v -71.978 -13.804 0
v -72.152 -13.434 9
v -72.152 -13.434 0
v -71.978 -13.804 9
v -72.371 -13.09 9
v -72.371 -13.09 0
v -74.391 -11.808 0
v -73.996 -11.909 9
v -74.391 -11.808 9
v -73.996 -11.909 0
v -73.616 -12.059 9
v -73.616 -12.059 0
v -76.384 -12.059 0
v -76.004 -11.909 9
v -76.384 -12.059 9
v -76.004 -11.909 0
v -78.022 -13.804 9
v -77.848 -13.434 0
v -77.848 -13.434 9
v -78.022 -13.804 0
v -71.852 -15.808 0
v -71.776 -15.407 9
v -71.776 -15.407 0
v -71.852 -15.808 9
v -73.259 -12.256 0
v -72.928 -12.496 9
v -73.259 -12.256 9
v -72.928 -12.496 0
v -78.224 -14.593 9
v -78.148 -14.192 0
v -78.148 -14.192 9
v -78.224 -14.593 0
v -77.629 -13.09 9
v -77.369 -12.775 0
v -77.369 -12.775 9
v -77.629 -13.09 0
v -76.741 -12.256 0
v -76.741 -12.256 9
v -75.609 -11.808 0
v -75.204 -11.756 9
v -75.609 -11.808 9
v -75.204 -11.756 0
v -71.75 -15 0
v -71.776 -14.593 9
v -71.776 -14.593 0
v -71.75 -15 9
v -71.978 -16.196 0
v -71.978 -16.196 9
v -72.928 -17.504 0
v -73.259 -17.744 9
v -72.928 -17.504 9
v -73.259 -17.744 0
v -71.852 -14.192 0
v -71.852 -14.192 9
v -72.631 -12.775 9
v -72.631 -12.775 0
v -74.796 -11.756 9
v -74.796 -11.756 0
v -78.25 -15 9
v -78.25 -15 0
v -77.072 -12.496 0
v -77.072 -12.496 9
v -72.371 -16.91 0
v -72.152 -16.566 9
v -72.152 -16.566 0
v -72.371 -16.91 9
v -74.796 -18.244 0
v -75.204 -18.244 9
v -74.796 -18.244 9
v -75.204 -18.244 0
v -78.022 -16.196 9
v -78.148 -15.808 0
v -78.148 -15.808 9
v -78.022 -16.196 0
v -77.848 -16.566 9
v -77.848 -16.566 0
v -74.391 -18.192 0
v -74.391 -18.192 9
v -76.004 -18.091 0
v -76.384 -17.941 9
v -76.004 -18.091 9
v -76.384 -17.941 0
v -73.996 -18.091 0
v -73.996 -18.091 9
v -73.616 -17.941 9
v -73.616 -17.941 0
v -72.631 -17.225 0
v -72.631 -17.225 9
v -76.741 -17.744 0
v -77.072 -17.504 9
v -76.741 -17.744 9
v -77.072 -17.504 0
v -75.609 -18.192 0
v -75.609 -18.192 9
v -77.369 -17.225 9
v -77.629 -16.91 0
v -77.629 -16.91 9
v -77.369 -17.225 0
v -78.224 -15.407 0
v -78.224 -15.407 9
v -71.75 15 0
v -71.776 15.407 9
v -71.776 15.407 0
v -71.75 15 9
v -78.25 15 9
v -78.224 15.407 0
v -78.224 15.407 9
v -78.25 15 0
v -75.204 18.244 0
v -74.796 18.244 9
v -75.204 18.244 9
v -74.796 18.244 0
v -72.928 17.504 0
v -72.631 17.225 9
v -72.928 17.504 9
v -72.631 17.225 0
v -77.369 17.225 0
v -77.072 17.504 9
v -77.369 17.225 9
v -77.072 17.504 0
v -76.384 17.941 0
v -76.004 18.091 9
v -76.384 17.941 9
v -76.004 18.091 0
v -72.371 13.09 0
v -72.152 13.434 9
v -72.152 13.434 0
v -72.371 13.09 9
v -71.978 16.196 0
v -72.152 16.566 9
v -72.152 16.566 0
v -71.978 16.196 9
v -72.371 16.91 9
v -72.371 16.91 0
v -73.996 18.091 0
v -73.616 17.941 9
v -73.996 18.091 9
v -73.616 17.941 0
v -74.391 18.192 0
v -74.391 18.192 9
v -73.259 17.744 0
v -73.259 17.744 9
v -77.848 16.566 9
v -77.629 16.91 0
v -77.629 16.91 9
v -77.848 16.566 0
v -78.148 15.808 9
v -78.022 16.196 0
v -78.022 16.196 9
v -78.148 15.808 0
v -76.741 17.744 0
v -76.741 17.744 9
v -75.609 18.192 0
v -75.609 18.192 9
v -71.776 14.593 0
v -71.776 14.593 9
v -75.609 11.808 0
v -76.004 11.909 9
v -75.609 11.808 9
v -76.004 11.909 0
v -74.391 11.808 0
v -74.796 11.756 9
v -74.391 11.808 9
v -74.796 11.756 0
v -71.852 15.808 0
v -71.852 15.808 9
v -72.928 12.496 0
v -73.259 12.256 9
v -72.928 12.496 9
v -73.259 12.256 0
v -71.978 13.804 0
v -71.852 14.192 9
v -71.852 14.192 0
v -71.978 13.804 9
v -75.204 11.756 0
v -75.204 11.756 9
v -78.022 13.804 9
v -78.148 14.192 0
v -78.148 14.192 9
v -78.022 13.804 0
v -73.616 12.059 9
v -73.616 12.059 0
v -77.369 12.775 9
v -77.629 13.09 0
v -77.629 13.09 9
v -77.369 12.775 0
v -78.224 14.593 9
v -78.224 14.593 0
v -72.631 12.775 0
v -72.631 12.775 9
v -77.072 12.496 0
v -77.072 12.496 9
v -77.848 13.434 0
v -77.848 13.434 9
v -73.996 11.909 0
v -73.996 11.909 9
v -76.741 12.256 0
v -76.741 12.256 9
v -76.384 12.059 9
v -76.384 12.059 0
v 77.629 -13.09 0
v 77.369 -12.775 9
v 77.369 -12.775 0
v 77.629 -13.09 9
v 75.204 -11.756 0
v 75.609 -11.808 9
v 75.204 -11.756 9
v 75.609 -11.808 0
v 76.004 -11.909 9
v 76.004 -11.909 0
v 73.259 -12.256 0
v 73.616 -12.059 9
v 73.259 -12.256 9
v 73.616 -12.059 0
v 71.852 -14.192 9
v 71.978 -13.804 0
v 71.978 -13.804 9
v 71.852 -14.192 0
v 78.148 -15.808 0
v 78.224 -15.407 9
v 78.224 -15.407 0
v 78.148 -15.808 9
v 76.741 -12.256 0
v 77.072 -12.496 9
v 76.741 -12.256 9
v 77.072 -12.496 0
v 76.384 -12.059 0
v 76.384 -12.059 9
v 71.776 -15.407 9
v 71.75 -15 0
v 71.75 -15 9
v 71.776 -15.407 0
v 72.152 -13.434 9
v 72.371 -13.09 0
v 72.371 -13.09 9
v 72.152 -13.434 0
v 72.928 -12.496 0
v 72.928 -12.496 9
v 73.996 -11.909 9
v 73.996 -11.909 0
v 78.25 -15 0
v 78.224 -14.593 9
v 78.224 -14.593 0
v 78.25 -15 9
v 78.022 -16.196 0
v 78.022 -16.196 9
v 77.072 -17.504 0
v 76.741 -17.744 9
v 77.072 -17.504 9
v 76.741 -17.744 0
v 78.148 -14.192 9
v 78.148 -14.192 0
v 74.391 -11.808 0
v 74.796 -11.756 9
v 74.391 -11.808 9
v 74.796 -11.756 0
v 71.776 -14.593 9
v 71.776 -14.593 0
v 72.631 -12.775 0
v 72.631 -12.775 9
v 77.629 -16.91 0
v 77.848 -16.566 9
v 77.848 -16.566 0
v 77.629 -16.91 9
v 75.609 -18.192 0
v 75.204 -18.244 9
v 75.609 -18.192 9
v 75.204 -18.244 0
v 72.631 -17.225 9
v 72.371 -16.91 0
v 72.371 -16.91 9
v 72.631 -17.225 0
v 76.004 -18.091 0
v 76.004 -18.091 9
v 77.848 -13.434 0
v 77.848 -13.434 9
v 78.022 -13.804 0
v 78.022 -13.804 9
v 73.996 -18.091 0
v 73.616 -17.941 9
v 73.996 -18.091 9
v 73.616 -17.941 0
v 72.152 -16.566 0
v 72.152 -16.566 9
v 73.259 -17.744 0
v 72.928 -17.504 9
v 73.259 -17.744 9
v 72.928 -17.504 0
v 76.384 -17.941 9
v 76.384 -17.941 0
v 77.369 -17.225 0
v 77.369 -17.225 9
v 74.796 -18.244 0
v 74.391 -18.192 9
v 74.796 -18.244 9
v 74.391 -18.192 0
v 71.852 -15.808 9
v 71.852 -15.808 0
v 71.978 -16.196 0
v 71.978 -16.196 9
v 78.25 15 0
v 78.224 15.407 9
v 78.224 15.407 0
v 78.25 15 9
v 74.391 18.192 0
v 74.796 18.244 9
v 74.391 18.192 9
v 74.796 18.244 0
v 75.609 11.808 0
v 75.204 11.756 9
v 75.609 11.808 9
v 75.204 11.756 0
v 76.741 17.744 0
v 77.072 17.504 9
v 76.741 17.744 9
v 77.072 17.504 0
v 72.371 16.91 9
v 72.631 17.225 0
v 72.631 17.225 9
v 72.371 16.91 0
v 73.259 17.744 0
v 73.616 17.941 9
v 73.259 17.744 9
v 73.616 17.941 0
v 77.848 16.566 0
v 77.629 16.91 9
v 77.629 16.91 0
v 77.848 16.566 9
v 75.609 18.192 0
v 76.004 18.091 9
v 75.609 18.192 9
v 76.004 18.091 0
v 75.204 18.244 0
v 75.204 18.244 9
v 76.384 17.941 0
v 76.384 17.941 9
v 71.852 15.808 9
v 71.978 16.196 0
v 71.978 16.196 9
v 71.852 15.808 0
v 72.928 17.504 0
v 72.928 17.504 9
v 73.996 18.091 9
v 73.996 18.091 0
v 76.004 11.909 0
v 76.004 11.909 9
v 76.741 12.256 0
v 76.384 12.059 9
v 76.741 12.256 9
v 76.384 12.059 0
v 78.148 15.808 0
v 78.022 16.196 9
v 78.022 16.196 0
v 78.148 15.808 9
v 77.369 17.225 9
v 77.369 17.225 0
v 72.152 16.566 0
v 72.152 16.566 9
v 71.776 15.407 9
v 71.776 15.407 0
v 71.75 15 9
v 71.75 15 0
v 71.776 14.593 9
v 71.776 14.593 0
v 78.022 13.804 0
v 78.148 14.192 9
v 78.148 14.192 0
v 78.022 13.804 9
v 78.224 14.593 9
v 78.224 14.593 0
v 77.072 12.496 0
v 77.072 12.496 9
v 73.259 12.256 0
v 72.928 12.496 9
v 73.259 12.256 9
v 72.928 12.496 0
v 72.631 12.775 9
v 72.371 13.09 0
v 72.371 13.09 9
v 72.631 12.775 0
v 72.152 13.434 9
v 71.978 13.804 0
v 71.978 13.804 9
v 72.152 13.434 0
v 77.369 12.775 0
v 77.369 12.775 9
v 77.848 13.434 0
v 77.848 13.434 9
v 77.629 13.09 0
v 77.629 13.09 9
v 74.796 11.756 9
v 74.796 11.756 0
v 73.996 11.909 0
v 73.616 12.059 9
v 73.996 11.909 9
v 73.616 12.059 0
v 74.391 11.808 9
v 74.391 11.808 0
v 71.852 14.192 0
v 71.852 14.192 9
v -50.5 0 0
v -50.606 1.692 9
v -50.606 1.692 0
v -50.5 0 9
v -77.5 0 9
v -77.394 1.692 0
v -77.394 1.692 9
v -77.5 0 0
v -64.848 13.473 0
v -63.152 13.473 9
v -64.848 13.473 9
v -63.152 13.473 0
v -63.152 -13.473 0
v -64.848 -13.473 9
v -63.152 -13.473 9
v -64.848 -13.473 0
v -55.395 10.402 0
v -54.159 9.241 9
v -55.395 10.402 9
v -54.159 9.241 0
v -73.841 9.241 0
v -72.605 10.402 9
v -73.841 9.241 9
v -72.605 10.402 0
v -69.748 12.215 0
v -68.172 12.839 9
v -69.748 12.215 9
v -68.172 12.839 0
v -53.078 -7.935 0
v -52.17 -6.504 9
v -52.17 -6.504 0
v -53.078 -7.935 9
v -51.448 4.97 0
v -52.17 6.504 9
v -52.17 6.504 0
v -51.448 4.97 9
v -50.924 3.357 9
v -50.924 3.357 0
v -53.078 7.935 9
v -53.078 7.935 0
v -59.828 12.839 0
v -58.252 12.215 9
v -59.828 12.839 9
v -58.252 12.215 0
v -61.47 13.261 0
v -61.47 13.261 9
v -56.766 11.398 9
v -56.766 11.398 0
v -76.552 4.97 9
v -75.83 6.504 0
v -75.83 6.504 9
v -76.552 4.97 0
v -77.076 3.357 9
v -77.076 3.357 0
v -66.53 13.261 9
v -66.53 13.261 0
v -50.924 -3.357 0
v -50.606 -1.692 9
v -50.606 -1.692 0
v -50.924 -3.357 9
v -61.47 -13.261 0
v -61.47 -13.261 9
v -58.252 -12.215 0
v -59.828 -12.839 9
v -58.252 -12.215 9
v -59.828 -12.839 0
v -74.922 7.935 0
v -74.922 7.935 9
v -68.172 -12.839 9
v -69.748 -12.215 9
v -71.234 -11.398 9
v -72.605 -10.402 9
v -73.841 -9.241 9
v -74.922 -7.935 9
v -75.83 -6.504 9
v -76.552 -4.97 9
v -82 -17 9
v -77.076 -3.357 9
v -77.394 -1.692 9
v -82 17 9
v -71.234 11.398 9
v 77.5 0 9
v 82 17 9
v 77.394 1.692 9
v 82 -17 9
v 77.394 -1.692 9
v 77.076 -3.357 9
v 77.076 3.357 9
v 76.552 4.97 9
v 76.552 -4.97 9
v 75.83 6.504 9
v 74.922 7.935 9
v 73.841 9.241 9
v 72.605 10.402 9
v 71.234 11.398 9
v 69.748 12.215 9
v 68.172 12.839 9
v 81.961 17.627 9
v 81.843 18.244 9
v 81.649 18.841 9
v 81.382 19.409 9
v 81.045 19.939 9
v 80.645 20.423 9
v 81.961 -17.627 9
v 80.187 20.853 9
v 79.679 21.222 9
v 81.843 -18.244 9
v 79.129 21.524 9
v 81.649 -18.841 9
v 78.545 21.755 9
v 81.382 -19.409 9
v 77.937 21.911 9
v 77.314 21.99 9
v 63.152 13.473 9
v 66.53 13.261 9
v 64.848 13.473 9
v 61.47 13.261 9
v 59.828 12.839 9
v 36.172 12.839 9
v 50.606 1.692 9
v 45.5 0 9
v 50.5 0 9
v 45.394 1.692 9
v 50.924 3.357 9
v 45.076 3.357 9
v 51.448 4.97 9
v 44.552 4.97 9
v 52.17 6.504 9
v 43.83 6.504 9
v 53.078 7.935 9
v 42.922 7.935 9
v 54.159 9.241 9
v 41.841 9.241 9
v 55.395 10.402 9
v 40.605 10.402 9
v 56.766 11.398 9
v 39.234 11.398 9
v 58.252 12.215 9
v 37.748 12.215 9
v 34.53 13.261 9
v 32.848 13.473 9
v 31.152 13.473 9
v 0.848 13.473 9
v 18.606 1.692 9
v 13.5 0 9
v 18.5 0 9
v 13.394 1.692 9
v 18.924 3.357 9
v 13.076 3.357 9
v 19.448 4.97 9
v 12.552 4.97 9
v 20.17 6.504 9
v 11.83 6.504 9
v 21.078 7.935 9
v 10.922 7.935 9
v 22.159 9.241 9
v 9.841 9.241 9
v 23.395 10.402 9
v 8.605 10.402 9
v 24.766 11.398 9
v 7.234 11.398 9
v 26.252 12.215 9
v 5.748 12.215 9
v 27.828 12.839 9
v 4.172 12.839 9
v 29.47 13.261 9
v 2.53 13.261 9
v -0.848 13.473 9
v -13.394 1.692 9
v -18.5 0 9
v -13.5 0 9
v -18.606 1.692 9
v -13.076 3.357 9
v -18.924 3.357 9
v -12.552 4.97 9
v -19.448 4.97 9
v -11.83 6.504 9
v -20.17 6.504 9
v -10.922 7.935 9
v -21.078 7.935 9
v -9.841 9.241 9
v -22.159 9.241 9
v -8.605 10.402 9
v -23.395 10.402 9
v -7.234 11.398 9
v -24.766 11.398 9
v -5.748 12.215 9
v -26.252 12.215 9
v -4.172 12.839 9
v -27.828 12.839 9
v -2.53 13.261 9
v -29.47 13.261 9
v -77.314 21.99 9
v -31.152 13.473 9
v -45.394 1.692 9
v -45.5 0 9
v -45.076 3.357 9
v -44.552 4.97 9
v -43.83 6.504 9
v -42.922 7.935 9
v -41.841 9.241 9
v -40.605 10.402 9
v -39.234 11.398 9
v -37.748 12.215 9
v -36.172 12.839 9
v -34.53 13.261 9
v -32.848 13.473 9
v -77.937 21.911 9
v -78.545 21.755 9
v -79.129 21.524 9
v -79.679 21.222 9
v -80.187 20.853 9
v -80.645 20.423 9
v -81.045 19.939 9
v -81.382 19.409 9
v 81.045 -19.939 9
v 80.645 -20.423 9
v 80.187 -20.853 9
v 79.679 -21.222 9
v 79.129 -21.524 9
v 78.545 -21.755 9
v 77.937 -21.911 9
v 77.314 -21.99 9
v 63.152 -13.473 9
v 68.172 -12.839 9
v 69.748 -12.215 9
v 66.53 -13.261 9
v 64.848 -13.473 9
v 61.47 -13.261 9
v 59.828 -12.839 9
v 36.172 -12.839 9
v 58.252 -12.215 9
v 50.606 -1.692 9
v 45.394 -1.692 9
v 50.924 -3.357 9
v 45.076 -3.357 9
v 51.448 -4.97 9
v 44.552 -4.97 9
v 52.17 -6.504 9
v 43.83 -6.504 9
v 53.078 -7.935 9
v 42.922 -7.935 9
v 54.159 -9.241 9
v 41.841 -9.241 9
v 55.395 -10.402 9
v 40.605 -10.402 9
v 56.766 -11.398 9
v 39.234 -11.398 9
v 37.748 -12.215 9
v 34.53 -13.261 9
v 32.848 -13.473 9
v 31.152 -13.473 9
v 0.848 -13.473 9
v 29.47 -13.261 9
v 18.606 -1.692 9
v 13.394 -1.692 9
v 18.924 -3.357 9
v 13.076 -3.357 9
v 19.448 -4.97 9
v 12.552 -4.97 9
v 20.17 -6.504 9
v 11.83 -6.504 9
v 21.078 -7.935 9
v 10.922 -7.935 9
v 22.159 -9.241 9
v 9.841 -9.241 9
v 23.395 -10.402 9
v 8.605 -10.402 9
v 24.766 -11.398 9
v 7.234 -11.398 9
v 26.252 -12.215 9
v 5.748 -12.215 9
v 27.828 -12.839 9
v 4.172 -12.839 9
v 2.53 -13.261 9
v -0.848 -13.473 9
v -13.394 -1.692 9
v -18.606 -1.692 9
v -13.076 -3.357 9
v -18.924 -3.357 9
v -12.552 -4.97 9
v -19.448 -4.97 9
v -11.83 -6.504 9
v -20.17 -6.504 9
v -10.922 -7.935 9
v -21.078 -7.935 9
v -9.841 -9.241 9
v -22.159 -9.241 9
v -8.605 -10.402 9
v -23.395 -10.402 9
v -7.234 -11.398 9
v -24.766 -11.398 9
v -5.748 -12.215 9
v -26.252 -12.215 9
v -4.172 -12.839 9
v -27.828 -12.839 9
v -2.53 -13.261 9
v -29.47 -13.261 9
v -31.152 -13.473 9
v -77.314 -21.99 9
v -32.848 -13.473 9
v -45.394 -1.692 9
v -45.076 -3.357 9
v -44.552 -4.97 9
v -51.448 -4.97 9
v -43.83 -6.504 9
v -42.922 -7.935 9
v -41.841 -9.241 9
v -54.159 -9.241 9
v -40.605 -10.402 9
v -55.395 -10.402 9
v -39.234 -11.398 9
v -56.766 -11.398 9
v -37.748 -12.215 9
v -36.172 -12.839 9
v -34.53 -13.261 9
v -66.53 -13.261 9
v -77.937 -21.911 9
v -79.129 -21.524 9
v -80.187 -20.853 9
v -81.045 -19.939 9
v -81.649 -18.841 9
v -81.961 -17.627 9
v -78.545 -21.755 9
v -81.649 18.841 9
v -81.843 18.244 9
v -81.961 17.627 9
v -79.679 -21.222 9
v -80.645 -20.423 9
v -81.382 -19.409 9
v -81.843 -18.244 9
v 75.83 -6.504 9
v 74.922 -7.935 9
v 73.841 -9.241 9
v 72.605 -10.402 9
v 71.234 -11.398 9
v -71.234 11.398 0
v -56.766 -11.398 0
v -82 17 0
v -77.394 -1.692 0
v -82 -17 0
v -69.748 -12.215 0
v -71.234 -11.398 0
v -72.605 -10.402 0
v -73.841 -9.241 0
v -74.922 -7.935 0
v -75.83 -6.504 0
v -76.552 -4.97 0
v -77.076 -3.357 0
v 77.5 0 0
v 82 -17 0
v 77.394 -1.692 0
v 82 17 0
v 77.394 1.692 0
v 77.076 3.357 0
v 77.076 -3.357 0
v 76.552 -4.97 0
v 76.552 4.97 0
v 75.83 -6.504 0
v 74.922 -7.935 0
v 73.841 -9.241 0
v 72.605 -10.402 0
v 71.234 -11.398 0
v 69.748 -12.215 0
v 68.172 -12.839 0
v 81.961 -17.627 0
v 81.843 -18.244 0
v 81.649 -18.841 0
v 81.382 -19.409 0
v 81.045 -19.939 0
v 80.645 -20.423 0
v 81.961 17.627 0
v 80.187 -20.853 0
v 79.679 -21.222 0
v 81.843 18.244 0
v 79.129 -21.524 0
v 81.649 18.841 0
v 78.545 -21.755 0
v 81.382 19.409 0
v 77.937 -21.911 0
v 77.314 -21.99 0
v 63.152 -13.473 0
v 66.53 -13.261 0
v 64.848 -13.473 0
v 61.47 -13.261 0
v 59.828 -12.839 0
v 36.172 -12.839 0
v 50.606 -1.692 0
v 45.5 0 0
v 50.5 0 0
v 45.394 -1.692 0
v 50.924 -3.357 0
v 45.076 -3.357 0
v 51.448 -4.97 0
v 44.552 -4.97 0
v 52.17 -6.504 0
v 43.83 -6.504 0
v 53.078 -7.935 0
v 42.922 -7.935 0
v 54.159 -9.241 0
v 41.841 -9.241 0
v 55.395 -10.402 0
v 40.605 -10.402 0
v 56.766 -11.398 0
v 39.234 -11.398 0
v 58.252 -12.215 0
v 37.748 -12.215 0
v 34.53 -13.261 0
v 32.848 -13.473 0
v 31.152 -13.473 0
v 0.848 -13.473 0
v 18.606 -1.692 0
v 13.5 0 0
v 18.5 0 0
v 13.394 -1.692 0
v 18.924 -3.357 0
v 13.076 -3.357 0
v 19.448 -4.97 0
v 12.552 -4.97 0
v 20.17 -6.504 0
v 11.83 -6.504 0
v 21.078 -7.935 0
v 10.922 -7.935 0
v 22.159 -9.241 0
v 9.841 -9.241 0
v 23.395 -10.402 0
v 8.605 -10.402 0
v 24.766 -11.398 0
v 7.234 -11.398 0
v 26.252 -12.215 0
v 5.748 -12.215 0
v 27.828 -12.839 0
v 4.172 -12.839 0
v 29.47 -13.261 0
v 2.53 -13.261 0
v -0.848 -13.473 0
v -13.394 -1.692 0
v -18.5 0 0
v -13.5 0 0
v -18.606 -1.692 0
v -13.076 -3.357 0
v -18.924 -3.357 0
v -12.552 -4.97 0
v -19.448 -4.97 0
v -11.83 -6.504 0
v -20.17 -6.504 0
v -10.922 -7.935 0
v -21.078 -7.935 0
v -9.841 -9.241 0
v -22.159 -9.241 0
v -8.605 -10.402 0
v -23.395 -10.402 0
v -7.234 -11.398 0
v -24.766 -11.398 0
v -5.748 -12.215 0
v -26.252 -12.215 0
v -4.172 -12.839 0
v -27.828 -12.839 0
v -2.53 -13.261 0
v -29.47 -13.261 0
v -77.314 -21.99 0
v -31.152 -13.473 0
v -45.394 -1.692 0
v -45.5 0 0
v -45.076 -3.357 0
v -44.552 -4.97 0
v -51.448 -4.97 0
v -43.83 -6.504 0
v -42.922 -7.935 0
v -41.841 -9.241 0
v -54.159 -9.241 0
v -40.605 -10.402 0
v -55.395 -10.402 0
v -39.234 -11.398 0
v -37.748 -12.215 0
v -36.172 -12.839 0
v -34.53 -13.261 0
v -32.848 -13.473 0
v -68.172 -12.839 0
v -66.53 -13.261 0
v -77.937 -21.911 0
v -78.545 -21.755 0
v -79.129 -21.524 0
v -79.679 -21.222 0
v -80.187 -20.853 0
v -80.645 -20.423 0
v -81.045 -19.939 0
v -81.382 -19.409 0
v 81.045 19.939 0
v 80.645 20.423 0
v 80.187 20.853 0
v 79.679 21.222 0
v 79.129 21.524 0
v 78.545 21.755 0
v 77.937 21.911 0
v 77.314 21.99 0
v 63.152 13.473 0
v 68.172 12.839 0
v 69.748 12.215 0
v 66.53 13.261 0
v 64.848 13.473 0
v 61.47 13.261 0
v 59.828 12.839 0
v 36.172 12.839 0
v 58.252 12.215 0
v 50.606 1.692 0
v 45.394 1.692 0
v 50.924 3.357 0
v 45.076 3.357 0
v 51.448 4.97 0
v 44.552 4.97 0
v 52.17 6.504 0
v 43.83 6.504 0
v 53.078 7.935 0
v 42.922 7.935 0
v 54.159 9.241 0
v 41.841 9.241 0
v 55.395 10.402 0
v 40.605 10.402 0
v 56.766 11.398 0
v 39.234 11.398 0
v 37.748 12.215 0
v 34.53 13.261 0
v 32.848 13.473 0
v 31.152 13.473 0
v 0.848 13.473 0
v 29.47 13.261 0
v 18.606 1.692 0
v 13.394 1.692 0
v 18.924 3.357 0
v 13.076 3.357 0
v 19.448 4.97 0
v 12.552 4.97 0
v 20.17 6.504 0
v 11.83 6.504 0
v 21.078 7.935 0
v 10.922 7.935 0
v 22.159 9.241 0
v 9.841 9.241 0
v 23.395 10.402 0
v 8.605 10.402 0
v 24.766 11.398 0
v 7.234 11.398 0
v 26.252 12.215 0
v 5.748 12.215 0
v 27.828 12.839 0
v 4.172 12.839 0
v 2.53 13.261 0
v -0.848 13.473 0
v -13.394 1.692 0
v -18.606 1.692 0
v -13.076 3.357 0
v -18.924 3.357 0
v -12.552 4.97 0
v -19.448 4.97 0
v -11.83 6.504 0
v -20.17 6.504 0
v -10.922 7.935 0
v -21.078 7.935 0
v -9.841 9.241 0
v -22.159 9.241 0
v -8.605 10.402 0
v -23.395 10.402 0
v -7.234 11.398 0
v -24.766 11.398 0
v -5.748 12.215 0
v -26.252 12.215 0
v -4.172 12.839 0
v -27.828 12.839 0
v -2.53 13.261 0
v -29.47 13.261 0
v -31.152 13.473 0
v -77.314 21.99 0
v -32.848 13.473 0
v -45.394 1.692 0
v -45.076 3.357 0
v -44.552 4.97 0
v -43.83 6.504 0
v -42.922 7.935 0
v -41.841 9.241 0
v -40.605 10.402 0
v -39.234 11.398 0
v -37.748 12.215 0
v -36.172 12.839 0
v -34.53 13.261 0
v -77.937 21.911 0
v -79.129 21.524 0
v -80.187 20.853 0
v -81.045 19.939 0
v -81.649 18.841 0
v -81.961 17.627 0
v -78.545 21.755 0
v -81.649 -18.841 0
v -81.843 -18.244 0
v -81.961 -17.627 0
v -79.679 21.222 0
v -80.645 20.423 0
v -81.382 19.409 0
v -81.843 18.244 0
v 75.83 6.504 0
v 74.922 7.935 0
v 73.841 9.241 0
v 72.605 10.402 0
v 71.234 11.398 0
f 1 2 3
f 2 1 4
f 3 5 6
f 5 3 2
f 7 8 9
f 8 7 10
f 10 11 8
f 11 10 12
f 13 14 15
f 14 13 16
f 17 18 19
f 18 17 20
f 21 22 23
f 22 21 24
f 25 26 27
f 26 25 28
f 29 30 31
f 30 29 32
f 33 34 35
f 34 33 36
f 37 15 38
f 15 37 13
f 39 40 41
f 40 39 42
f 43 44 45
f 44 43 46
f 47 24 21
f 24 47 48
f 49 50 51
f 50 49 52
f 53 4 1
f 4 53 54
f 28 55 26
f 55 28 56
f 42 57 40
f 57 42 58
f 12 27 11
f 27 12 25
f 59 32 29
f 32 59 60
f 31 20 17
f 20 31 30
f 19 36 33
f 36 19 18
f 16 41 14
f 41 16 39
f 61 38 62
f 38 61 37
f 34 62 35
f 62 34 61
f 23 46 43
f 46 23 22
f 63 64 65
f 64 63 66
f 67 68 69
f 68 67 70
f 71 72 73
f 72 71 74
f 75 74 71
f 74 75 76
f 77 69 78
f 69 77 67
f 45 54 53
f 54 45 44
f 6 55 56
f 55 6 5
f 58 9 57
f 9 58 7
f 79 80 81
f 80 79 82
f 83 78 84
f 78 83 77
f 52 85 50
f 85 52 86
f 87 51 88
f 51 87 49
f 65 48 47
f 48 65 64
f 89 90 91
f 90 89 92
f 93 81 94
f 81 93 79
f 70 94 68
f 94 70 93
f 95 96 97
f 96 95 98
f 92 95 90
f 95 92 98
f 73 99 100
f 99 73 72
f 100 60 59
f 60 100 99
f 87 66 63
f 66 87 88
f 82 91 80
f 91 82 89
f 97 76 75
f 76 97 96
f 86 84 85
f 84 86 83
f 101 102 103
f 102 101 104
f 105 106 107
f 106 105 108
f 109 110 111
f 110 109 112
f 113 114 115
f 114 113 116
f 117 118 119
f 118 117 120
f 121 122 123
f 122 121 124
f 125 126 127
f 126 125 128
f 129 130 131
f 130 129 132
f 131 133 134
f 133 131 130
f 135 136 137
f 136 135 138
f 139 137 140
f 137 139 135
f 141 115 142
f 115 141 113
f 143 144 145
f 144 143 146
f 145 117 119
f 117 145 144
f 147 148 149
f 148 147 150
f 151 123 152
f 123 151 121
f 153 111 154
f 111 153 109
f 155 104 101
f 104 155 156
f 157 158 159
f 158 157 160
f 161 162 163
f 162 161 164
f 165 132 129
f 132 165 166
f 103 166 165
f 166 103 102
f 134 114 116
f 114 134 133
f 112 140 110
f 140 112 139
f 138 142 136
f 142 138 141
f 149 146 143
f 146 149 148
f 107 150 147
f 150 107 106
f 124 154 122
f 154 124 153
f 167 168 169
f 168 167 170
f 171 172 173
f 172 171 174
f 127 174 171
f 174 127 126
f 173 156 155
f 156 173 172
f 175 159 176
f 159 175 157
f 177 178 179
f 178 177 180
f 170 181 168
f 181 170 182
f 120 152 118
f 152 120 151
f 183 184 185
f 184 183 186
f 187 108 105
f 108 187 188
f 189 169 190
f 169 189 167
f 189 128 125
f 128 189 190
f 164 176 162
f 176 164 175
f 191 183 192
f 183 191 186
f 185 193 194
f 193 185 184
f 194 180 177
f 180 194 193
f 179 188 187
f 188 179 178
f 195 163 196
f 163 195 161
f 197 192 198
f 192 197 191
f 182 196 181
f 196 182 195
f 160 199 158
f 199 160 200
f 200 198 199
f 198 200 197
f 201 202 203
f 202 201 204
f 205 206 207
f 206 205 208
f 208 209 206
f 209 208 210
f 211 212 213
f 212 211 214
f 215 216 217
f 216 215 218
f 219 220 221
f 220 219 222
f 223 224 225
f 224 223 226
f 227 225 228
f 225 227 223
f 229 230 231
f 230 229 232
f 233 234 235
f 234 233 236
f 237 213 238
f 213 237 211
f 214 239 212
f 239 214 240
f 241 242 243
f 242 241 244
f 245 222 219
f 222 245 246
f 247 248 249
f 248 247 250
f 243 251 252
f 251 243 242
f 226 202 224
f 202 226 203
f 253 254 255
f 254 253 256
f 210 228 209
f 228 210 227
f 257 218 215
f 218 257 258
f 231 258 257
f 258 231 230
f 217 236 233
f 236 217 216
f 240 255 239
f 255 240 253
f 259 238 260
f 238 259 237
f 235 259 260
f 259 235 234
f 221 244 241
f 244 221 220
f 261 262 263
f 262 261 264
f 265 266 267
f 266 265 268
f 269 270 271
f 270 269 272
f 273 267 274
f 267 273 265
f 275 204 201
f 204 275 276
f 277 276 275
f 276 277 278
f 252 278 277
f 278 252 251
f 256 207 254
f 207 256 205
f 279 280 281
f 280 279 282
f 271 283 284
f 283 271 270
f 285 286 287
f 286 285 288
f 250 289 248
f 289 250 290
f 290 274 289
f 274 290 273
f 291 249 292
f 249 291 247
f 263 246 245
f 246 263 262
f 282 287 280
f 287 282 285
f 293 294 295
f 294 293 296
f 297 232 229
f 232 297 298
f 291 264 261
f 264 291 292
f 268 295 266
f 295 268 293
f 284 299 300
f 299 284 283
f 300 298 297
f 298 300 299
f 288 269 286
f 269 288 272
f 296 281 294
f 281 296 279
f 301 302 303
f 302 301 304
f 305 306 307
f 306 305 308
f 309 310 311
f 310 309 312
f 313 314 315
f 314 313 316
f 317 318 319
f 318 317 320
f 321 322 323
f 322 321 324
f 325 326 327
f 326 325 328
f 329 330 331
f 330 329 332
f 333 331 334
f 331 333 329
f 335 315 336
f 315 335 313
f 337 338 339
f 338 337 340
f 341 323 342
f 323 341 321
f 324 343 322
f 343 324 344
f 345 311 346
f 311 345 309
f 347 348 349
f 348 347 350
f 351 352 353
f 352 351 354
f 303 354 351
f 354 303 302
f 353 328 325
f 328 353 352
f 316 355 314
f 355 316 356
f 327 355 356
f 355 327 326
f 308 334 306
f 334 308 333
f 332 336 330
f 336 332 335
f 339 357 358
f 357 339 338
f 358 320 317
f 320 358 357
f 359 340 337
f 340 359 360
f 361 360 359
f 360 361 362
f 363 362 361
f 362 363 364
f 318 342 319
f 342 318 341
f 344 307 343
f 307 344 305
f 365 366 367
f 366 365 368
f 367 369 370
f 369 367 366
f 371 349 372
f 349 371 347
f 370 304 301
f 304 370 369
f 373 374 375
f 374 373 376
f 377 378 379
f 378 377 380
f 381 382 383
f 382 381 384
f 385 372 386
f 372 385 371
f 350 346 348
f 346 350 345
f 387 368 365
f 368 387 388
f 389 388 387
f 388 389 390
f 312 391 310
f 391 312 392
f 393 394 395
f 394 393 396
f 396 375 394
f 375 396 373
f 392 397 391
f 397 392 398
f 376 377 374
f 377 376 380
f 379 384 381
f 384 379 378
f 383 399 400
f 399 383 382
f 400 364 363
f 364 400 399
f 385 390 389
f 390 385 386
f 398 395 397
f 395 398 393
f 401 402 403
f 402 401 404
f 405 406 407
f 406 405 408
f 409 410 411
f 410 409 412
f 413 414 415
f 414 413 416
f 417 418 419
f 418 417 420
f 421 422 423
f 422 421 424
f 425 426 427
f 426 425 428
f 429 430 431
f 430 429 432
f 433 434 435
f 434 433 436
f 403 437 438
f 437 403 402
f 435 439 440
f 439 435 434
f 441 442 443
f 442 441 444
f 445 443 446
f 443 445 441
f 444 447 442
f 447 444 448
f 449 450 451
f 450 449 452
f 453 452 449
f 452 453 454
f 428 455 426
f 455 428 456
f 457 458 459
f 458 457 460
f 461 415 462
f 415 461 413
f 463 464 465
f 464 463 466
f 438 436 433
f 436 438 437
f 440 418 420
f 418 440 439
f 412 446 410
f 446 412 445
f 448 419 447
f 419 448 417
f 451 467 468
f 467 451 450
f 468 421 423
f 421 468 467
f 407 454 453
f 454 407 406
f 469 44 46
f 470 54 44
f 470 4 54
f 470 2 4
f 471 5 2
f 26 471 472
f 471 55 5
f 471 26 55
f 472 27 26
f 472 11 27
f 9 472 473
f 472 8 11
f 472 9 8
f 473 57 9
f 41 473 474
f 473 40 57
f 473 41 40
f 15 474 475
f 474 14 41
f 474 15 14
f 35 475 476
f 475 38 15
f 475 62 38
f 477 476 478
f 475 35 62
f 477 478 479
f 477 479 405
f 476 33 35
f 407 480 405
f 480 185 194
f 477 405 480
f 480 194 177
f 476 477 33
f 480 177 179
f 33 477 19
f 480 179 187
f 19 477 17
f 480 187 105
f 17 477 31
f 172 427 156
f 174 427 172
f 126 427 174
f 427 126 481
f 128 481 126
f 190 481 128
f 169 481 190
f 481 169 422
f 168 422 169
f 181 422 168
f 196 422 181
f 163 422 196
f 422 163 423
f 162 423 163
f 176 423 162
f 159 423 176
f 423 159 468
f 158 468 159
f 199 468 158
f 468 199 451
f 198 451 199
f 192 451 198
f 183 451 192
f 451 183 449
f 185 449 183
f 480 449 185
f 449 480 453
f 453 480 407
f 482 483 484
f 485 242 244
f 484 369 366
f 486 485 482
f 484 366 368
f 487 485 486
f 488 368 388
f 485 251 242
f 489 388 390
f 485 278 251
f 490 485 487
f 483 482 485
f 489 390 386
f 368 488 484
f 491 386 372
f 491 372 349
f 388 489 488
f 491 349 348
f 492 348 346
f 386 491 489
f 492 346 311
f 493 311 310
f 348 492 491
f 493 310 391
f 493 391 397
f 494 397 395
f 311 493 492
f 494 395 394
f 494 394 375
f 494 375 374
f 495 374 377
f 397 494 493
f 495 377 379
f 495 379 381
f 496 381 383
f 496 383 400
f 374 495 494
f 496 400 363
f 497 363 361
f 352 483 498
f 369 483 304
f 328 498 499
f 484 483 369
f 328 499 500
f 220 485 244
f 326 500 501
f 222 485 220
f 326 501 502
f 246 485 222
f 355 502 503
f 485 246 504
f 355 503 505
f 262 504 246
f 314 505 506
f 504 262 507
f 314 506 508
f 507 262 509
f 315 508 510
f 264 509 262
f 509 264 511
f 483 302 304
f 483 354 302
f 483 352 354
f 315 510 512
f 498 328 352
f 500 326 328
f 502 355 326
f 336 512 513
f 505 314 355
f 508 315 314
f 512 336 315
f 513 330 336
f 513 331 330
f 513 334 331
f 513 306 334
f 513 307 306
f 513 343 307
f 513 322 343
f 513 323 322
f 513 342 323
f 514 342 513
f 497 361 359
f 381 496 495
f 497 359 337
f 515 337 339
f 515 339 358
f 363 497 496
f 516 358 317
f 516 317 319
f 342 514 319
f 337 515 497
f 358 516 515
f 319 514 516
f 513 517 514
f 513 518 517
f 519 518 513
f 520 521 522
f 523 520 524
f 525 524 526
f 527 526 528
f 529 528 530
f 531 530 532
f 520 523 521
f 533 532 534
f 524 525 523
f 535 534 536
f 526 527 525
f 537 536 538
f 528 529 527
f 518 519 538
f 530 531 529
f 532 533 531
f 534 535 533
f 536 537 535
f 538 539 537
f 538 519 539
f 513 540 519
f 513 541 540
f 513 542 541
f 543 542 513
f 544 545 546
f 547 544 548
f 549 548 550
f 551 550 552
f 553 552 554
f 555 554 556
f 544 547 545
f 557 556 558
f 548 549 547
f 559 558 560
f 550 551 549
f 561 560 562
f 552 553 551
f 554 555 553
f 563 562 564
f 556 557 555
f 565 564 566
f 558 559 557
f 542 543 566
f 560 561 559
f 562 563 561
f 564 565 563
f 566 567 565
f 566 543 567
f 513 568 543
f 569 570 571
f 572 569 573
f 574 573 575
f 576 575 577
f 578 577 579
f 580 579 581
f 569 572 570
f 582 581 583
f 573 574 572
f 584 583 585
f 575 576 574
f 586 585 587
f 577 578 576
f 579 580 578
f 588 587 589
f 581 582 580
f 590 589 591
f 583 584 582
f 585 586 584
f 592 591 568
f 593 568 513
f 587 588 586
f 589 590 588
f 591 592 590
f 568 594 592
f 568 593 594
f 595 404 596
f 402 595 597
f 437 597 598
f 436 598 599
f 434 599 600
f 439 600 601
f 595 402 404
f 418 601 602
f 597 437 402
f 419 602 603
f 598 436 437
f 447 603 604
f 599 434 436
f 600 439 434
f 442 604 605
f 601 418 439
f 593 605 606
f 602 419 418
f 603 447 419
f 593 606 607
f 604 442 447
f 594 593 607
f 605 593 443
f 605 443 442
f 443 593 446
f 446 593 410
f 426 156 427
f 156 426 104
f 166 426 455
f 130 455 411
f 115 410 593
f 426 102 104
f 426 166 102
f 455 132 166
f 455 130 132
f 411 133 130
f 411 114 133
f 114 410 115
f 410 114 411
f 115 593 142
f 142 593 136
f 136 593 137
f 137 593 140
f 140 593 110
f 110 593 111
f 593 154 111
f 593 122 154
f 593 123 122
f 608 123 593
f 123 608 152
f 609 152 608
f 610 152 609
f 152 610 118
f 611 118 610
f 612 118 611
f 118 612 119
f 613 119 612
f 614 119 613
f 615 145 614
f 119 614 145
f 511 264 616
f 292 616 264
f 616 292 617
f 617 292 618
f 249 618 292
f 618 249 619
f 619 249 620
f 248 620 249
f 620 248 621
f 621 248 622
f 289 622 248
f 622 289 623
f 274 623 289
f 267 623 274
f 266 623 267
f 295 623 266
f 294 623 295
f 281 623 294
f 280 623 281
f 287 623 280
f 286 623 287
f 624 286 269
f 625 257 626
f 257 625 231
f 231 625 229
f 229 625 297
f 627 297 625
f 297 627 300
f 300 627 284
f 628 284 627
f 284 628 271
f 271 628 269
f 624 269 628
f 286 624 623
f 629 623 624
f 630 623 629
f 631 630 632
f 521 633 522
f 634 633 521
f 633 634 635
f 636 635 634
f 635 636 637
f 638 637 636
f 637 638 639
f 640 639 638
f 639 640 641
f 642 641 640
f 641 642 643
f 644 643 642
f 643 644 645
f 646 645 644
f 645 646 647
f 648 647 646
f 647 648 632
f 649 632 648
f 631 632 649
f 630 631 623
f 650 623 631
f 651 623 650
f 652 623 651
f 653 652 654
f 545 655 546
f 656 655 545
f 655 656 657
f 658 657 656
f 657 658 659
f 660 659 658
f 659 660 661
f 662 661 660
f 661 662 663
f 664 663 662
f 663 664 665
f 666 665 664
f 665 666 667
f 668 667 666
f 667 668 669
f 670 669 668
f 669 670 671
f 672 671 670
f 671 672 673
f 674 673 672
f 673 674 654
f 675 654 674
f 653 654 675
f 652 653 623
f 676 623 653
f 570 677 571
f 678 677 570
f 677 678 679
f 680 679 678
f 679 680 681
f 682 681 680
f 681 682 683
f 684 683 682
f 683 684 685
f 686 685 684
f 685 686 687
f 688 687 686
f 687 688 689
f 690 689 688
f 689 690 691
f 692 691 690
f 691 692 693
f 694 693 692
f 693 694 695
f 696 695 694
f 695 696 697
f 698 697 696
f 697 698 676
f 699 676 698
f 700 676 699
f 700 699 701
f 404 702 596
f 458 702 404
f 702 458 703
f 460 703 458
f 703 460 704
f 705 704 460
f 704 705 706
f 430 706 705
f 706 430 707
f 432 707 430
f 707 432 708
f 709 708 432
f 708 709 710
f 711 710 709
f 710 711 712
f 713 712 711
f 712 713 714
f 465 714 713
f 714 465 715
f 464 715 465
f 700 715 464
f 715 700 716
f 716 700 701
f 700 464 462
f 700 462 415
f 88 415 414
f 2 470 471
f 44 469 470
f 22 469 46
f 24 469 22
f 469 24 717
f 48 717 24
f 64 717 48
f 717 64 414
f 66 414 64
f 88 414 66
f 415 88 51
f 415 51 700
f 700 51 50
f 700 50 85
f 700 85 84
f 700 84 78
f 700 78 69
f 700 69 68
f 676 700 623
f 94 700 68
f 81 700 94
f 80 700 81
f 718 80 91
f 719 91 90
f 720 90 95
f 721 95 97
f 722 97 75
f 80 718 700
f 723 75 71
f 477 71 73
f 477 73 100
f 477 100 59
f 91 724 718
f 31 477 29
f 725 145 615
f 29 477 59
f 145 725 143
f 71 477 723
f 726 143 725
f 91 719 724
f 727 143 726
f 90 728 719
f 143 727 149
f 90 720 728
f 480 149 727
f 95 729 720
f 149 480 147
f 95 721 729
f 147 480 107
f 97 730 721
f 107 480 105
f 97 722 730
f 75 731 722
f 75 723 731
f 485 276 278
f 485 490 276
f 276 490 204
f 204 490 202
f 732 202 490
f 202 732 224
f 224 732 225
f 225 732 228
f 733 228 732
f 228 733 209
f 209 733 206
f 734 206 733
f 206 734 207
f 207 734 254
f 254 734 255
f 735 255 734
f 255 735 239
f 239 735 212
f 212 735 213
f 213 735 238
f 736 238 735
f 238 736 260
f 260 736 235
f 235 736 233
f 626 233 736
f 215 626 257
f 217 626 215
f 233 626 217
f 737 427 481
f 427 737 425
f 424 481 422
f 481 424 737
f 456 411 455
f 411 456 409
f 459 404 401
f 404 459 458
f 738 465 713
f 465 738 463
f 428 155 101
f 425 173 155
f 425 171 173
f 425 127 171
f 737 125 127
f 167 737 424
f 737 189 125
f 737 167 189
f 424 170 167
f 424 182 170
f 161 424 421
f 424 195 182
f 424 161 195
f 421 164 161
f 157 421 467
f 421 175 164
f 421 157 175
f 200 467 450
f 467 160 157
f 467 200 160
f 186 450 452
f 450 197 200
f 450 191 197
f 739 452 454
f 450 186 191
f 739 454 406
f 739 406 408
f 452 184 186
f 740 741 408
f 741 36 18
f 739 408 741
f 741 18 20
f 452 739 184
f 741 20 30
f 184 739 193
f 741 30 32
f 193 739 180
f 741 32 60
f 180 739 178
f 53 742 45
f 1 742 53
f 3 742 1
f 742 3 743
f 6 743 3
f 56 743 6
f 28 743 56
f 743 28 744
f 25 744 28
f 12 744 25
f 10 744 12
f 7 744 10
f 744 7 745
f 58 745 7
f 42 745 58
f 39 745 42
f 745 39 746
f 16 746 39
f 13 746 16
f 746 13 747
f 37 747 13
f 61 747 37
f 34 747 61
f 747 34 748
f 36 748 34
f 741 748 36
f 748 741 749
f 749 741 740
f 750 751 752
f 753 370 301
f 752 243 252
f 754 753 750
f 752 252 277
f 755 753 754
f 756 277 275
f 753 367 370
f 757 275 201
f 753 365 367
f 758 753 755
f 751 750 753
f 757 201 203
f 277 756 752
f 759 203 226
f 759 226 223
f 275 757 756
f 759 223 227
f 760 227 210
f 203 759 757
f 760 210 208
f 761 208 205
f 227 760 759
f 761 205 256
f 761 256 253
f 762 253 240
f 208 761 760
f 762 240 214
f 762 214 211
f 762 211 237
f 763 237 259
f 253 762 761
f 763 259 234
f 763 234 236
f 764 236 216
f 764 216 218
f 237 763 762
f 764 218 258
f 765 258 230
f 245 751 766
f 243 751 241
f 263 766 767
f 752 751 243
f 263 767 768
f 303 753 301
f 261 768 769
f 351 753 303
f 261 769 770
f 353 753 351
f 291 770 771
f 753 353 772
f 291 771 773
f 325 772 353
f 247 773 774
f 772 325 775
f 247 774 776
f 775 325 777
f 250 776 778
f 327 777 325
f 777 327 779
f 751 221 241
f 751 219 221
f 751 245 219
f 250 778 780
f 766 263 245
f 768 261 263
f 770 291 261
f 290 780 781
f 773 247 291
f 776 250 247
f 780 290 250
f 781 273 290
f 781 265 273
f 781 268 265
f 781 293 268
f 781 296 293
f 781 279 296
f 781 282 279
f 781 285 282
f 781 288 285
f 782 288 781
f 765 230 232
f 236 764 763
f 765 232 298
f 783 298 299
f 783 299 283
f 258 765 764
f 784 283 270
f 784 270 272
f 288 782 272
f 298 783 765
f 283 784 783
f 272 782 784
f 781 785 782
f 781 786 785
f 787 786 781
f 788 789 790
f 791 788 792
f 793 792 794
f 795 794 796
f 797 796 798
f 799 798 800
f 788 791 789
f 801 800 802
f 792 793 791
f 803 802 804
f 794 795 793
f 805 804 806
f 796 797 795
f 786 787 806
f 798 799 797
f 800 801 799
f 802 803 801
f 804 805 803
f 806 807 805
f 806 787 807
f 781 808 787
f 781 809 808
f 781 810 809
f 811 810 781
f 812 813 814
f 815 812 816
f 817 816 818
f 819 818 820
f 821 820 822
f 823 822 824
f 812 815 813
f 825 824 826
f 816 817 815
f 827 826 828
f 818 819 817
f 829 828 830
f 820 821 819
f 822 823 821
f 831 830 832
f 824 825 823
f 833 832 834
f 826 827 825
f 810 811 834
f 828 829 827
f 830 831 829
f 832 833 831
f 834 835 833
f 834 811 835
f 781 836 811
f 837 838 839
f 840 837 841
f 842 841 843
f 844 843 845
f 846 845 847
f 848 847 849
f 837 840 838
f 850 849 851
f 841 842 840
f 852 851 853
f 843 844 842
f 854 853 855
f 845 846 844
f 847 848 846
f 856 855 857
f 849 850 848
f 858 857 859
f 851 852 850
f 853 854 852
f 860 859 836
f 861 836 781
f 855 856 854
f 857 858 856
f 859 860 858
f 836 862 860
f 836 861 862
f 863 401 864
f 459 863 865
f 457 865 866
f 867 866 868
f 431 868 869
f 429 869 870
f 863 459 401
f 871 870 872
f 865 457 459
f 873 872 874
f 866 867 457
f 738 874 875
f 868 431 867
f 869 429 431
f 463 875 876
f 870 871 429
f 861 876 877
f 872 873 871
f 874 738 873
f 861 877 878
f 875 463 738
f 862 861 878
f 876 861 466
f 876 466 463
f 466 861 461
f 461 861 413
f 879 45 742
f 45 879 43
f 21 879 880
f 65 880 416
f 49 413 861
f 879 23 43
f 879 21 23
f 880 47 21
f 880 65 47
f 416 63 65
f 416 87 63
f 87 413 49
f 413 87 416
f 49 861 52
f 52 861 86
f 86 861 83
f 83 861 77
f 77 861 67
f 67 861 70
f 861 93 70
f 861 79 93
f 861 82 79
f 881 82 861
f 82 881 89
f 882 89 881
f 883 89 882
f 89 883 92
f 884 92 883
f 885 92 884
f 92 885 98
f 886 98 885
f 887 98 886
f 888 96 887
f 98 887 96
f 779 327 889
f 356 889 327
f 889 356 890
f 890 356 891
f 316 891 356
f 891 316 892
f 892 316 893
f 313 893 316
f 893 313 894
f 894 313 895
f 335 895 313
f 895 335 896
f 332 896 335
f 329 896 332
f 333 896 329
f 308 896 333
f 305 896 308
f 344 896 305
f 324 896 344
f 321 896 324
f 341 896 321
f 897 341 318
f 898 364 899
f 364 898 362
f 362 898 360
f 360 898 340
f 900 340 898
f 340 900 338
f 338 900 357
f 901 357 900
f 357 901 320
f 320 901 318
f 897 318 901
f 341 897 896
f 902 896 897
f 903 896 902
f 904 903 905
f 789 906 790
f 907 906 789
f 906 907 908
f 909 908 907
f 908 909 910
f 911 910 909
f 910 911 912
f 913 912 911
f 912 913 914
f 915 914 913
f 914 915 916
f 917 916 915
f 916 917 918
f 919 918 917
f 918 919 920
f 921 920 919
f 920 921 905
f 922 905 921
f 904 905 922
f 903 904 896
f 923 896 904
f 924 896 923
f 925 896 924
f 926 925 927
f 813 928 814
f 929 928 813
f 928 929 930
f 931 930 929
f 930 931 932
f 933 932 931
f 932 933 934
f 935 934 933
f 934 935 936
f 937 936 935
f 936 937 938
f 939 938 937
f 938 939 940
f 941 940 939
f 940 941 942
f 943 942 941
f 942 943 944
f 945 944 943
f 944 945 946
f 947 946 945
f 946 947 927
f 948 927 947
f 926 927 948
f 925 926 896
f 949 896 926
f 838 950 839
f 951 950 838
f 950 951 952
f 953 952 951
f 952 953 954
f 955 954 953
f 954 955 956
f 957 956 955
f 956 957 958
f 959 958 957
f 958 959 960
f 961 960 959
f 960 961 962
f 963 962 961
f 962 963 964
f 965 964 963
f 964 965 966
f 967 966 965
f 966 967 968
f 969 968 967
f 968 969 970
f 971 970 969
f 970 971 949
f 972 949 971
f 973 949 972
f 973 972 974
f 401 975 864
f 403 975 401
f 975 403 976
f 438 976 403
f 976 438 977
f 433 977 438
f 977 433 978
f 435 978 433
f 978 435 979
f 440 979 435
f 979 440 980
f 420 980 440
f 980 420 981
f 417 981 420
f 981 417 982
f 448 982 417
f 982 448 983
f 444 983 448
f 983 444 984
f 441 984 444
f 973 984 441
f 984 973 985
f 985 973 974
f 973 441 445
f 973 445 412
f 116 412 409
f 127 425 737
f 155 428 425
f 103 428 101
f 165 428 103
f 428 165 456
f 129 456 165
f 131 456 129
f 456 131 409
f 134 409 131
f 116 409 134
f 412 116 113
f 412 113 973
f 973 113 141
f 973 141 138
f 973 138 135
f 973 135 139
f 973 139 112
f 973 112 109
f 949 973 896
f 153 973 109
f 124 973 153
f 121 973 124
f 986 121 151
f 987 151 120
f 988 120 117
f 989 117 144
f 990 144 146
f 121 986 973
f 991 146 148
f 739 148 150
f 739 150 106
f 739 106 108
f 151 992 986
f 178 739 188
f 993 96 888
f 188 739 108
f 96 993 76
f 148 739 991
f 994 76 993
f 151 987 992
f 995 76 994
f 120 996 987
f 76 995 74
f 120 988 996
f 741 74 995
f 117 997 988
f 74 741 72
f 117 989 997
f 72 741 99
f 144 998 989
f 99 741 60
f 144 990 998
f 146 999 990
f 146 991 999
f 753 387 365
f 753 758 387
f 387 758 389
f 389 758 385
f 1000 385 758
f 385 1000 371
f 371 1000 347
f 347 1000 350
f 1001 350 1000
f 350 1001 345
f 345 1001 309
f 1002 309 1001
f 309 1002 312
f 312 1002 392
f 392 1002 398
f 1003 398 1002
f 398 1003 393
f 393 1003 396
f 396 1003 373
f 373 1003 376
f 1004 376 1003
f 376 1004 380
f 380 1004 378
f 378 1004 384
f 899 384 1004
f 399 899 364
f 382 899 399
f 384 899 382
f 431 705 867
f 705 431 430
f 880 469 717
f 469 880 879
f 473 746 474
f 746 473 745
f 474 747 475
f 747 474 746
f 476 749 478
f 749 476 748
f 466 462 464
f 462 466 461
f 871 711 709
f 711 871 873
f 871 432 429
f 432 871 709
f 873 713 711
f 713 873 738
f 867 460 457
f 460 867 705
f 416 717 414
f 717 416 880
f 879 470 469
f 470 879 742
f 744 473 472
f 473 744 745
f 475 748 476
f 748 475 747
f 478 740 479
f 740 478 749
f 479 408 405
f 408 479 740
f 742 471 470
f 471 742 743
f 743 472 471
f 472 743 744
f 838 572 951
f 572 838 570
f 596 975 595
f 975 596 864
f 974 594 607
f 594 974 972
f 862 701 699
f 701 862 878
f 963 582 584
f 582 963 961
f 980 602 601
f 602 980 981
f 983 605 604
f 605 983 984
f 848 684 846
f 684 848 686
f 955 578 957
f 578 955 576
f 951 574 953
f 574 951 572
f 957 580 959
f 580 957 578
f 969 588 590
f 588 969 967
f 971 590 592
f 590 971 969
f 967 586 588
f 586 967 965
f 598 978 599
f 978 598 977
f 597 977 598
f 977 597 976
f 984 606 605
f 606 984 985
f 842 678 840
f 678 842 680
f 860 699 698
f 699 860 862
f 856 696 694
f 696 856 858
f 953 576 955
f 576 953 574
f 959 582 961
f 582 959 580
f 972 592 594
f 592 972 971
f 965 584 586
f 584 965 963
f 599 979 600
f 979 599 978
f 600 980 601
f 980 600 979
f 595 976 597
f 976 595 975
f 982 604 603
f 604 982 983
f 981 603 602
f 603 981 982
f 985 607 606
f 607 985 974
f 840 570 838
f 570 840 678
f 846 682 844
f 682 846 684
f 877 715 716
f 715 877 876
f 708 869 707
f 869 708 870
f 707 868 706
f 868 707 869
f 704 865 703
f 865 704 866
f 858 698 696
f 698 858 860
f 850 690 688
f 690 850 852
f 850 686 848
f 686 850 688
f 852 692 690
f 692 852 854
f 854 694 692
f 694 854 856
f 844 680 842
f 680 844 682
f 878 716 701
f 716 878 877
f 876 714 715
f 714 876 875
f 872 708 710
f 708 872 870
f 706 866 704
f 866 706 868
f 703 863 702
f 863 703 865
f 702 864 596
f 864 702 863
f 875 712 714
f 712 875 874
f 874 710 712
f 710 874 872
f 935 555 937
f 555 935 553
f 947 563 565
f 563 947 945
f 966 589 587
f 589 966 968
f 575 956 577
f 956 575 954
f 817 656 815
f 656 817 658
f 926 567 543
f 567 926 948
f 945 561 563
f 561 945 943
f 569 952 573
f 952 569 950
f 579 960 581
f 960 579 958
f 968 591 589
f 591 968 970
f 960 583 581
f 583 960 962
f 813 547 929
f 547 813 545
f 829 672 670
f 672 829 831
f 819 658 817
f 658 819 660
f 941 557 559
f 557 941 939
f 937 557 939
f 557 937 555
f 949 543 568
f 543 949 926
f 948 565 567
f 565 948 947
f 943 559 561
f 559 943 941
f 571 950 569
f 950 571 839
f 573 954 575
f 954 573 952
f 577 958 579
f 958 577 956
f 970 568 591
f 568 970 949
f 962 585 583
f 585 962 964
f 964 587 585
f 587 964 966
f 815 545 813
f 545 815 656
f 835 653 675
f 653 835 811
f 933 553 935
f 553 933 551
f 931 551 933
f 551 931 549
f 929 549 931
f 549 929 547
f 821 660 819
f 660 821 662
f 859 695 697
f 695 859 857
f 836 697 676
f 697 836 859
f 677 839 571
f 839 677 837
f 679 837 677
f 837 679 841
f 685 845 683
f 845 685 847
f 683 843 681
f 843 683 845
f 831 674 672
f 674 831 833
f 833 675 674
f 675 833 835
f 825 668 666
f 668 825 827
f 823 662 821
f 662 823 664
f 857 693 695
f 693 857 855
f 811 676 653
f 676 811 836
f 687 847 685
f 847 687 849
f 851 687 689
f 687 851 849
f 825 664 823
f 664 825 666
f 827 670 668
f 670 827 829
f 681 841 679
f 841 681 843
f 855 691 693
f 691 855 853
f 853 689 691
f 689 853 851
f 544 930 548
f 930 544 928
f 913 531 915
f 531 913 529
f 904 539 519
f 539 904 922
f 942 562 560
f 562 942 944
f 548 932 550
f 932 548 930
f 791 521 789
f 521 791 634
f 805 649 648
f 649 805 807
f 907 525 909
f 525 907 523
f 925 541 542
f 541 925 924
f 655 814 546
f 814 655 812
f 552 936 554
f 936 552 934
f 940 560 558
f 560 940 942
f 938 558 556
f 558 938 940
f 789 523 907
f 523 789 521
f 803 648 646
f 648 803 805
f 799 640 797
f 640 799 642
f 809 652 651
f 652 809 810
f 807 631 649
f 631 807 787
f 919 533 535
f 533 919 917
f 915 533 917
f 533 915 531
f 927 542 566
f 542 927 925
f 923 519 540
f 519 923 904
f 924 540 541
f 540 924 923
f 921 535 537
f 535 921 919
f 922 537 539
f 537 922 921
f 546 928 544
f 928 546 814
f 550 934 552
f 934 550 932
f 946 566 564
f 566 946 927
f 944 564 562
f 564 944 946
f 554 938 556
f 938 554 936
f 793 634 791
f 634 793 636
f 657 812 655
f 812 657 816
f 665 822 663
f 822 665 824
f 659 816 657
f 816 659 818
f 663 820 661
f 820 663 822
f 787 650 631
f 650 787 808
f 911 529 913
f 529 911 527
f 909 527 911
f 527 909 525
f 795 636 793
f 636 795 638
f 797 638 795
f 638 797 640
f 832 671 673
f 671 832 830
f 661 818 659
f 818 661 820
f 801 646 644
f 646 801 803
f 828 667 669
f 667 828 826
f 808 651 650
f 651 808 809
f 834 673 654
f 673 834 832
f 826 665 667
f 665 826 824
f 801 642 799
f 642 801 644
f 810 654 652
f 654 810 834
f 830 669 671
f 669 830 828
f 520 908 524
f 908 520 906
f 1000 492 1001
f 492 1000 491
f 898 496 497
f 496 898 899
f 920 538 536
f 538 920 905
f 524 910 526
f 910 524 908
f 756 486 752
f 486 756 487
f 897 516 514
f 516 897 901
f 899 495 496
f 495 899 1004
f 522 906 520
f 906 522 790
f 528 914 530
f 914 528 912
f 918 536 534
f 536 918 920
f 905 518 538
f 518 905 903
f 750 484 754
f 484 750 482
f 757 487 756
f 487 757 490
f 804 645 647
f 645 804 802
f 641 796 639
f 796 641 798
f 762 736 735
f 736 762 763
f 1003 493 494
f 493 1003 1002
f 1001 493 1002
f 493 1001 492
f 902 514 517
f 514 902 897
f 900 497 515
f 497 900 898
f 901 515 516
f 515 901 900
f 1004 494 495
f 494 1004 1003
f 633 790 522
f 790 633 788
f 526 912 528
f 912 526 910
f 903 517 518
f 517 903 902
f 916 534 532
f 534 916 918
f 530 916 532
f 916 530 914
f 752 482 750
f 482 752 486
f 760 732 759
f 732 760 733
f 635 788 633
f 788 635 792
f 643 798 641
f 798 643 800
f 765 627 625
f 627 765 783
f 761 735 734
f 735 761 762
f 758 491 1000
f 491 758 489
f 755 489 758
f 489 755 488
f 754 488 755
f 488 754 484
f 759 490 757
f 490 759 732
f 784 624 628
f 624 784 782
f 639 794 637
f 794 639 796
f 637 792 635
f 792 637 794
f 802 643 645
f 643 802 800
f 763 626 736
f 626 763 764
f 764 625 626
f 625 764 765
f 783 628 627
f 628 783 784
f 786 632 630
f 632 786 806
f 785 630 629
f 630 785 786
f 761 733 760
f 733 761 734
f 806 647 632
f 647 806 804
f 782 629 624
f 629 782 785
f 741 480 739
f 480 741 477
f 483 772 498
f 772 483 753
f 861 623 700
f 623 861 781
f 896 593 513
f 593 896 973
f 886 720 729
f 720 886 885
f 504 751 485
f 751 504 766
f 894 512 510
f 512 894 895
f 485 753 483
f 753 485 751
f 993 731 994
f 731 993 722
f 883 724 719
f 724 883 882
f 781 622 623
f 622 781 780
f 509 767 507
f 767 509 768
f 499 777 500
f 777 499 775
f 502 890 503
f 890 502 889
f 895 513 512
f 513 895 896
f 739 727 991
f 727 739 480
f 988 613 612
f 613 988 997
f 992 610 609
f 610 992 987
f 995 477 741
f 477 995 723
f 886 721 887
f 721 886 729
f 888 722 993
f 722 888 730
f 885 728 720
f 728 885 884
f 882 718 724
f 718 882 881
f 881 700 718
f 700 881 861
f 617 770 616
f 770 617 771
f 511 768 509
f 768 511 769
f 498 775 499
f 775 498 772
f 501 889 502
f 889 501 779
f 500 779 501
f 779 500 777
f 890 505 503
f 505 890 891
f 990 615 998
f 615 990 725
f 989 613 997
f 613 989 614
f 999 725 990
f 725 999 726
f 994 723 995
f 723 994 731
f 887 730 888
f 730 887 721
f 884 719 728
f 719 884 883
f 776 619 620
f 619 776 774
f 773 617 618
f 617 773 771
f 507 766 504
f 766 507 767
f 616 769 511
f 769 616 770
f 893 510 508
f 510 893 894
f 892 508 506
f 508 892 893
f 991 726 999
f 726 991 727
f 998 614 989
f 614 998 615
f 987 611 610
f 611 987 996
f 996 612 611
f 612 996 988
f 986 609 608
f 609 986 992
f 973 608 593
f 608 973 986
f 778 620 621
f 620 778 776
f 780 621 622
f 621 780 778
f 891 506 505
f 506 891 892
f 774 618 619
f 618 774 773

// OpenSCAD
$fn = 50;


difference() {
	union() {
		hull() {
			translate(v = [-77.0000000000, 17.0000000000, 0]) {
				cylinder(h = 9, r = 5);
			}
			translate(v = [77.0000000000, 17.0000000000, 0]) {
				cylinder(h = 9, r = 5);
			}
			translate(v = [-77.0000000000, -17.0000000000, 0]) {
				cylinder(h = 9, r = 5);
			}
			translate(v = [77.0000000000, -17.0000000000, 0]) {
				cylinder(h = 9, r = 5);
			}
		}
	}
	union() {
		#translate(v = [-75.0000000000, -15.0000000000, -100.0000000000]) {
			cylinder(h = 200, r = 3.2500000000);
		}
		#translate(v = [-75.0000000000, 15.0000000000, -100.0000000000]) {
			cylinder(h = 200, r = 3.2500000000);
		}
		#translate(v = [75.0000000000, -15.0000000000, -100.0000000000]) {
			cylinder(h = 200, r = 3.2500000000);
		}
		#translate(v = [75.0000000000, 15.0000000000, -100.0000000000]) {
			cylinder(h = 200, r = 3.2500000000);
		}
		#translate(v = [-64.0000000000, 0, 0]) {
			cylinder(h = 9, r = 13.5000000000);
		}
		#translate(v = [-32.0000000000, 0, 0]) {
			cylinder(h = 9, r = 13.5000000000);
		}
		#cylinder(h = 9, r = 13.5000000000);
		#translate(v = [32.0000000000, 0, 0]) {
			cylinder(h = 9, r = 13.5000000000);
		}
		#translate(v = [64.0000000000, 0, 0]) {
			cylinder(h = 9, r = 13.5000000000);
		}
	}
}
